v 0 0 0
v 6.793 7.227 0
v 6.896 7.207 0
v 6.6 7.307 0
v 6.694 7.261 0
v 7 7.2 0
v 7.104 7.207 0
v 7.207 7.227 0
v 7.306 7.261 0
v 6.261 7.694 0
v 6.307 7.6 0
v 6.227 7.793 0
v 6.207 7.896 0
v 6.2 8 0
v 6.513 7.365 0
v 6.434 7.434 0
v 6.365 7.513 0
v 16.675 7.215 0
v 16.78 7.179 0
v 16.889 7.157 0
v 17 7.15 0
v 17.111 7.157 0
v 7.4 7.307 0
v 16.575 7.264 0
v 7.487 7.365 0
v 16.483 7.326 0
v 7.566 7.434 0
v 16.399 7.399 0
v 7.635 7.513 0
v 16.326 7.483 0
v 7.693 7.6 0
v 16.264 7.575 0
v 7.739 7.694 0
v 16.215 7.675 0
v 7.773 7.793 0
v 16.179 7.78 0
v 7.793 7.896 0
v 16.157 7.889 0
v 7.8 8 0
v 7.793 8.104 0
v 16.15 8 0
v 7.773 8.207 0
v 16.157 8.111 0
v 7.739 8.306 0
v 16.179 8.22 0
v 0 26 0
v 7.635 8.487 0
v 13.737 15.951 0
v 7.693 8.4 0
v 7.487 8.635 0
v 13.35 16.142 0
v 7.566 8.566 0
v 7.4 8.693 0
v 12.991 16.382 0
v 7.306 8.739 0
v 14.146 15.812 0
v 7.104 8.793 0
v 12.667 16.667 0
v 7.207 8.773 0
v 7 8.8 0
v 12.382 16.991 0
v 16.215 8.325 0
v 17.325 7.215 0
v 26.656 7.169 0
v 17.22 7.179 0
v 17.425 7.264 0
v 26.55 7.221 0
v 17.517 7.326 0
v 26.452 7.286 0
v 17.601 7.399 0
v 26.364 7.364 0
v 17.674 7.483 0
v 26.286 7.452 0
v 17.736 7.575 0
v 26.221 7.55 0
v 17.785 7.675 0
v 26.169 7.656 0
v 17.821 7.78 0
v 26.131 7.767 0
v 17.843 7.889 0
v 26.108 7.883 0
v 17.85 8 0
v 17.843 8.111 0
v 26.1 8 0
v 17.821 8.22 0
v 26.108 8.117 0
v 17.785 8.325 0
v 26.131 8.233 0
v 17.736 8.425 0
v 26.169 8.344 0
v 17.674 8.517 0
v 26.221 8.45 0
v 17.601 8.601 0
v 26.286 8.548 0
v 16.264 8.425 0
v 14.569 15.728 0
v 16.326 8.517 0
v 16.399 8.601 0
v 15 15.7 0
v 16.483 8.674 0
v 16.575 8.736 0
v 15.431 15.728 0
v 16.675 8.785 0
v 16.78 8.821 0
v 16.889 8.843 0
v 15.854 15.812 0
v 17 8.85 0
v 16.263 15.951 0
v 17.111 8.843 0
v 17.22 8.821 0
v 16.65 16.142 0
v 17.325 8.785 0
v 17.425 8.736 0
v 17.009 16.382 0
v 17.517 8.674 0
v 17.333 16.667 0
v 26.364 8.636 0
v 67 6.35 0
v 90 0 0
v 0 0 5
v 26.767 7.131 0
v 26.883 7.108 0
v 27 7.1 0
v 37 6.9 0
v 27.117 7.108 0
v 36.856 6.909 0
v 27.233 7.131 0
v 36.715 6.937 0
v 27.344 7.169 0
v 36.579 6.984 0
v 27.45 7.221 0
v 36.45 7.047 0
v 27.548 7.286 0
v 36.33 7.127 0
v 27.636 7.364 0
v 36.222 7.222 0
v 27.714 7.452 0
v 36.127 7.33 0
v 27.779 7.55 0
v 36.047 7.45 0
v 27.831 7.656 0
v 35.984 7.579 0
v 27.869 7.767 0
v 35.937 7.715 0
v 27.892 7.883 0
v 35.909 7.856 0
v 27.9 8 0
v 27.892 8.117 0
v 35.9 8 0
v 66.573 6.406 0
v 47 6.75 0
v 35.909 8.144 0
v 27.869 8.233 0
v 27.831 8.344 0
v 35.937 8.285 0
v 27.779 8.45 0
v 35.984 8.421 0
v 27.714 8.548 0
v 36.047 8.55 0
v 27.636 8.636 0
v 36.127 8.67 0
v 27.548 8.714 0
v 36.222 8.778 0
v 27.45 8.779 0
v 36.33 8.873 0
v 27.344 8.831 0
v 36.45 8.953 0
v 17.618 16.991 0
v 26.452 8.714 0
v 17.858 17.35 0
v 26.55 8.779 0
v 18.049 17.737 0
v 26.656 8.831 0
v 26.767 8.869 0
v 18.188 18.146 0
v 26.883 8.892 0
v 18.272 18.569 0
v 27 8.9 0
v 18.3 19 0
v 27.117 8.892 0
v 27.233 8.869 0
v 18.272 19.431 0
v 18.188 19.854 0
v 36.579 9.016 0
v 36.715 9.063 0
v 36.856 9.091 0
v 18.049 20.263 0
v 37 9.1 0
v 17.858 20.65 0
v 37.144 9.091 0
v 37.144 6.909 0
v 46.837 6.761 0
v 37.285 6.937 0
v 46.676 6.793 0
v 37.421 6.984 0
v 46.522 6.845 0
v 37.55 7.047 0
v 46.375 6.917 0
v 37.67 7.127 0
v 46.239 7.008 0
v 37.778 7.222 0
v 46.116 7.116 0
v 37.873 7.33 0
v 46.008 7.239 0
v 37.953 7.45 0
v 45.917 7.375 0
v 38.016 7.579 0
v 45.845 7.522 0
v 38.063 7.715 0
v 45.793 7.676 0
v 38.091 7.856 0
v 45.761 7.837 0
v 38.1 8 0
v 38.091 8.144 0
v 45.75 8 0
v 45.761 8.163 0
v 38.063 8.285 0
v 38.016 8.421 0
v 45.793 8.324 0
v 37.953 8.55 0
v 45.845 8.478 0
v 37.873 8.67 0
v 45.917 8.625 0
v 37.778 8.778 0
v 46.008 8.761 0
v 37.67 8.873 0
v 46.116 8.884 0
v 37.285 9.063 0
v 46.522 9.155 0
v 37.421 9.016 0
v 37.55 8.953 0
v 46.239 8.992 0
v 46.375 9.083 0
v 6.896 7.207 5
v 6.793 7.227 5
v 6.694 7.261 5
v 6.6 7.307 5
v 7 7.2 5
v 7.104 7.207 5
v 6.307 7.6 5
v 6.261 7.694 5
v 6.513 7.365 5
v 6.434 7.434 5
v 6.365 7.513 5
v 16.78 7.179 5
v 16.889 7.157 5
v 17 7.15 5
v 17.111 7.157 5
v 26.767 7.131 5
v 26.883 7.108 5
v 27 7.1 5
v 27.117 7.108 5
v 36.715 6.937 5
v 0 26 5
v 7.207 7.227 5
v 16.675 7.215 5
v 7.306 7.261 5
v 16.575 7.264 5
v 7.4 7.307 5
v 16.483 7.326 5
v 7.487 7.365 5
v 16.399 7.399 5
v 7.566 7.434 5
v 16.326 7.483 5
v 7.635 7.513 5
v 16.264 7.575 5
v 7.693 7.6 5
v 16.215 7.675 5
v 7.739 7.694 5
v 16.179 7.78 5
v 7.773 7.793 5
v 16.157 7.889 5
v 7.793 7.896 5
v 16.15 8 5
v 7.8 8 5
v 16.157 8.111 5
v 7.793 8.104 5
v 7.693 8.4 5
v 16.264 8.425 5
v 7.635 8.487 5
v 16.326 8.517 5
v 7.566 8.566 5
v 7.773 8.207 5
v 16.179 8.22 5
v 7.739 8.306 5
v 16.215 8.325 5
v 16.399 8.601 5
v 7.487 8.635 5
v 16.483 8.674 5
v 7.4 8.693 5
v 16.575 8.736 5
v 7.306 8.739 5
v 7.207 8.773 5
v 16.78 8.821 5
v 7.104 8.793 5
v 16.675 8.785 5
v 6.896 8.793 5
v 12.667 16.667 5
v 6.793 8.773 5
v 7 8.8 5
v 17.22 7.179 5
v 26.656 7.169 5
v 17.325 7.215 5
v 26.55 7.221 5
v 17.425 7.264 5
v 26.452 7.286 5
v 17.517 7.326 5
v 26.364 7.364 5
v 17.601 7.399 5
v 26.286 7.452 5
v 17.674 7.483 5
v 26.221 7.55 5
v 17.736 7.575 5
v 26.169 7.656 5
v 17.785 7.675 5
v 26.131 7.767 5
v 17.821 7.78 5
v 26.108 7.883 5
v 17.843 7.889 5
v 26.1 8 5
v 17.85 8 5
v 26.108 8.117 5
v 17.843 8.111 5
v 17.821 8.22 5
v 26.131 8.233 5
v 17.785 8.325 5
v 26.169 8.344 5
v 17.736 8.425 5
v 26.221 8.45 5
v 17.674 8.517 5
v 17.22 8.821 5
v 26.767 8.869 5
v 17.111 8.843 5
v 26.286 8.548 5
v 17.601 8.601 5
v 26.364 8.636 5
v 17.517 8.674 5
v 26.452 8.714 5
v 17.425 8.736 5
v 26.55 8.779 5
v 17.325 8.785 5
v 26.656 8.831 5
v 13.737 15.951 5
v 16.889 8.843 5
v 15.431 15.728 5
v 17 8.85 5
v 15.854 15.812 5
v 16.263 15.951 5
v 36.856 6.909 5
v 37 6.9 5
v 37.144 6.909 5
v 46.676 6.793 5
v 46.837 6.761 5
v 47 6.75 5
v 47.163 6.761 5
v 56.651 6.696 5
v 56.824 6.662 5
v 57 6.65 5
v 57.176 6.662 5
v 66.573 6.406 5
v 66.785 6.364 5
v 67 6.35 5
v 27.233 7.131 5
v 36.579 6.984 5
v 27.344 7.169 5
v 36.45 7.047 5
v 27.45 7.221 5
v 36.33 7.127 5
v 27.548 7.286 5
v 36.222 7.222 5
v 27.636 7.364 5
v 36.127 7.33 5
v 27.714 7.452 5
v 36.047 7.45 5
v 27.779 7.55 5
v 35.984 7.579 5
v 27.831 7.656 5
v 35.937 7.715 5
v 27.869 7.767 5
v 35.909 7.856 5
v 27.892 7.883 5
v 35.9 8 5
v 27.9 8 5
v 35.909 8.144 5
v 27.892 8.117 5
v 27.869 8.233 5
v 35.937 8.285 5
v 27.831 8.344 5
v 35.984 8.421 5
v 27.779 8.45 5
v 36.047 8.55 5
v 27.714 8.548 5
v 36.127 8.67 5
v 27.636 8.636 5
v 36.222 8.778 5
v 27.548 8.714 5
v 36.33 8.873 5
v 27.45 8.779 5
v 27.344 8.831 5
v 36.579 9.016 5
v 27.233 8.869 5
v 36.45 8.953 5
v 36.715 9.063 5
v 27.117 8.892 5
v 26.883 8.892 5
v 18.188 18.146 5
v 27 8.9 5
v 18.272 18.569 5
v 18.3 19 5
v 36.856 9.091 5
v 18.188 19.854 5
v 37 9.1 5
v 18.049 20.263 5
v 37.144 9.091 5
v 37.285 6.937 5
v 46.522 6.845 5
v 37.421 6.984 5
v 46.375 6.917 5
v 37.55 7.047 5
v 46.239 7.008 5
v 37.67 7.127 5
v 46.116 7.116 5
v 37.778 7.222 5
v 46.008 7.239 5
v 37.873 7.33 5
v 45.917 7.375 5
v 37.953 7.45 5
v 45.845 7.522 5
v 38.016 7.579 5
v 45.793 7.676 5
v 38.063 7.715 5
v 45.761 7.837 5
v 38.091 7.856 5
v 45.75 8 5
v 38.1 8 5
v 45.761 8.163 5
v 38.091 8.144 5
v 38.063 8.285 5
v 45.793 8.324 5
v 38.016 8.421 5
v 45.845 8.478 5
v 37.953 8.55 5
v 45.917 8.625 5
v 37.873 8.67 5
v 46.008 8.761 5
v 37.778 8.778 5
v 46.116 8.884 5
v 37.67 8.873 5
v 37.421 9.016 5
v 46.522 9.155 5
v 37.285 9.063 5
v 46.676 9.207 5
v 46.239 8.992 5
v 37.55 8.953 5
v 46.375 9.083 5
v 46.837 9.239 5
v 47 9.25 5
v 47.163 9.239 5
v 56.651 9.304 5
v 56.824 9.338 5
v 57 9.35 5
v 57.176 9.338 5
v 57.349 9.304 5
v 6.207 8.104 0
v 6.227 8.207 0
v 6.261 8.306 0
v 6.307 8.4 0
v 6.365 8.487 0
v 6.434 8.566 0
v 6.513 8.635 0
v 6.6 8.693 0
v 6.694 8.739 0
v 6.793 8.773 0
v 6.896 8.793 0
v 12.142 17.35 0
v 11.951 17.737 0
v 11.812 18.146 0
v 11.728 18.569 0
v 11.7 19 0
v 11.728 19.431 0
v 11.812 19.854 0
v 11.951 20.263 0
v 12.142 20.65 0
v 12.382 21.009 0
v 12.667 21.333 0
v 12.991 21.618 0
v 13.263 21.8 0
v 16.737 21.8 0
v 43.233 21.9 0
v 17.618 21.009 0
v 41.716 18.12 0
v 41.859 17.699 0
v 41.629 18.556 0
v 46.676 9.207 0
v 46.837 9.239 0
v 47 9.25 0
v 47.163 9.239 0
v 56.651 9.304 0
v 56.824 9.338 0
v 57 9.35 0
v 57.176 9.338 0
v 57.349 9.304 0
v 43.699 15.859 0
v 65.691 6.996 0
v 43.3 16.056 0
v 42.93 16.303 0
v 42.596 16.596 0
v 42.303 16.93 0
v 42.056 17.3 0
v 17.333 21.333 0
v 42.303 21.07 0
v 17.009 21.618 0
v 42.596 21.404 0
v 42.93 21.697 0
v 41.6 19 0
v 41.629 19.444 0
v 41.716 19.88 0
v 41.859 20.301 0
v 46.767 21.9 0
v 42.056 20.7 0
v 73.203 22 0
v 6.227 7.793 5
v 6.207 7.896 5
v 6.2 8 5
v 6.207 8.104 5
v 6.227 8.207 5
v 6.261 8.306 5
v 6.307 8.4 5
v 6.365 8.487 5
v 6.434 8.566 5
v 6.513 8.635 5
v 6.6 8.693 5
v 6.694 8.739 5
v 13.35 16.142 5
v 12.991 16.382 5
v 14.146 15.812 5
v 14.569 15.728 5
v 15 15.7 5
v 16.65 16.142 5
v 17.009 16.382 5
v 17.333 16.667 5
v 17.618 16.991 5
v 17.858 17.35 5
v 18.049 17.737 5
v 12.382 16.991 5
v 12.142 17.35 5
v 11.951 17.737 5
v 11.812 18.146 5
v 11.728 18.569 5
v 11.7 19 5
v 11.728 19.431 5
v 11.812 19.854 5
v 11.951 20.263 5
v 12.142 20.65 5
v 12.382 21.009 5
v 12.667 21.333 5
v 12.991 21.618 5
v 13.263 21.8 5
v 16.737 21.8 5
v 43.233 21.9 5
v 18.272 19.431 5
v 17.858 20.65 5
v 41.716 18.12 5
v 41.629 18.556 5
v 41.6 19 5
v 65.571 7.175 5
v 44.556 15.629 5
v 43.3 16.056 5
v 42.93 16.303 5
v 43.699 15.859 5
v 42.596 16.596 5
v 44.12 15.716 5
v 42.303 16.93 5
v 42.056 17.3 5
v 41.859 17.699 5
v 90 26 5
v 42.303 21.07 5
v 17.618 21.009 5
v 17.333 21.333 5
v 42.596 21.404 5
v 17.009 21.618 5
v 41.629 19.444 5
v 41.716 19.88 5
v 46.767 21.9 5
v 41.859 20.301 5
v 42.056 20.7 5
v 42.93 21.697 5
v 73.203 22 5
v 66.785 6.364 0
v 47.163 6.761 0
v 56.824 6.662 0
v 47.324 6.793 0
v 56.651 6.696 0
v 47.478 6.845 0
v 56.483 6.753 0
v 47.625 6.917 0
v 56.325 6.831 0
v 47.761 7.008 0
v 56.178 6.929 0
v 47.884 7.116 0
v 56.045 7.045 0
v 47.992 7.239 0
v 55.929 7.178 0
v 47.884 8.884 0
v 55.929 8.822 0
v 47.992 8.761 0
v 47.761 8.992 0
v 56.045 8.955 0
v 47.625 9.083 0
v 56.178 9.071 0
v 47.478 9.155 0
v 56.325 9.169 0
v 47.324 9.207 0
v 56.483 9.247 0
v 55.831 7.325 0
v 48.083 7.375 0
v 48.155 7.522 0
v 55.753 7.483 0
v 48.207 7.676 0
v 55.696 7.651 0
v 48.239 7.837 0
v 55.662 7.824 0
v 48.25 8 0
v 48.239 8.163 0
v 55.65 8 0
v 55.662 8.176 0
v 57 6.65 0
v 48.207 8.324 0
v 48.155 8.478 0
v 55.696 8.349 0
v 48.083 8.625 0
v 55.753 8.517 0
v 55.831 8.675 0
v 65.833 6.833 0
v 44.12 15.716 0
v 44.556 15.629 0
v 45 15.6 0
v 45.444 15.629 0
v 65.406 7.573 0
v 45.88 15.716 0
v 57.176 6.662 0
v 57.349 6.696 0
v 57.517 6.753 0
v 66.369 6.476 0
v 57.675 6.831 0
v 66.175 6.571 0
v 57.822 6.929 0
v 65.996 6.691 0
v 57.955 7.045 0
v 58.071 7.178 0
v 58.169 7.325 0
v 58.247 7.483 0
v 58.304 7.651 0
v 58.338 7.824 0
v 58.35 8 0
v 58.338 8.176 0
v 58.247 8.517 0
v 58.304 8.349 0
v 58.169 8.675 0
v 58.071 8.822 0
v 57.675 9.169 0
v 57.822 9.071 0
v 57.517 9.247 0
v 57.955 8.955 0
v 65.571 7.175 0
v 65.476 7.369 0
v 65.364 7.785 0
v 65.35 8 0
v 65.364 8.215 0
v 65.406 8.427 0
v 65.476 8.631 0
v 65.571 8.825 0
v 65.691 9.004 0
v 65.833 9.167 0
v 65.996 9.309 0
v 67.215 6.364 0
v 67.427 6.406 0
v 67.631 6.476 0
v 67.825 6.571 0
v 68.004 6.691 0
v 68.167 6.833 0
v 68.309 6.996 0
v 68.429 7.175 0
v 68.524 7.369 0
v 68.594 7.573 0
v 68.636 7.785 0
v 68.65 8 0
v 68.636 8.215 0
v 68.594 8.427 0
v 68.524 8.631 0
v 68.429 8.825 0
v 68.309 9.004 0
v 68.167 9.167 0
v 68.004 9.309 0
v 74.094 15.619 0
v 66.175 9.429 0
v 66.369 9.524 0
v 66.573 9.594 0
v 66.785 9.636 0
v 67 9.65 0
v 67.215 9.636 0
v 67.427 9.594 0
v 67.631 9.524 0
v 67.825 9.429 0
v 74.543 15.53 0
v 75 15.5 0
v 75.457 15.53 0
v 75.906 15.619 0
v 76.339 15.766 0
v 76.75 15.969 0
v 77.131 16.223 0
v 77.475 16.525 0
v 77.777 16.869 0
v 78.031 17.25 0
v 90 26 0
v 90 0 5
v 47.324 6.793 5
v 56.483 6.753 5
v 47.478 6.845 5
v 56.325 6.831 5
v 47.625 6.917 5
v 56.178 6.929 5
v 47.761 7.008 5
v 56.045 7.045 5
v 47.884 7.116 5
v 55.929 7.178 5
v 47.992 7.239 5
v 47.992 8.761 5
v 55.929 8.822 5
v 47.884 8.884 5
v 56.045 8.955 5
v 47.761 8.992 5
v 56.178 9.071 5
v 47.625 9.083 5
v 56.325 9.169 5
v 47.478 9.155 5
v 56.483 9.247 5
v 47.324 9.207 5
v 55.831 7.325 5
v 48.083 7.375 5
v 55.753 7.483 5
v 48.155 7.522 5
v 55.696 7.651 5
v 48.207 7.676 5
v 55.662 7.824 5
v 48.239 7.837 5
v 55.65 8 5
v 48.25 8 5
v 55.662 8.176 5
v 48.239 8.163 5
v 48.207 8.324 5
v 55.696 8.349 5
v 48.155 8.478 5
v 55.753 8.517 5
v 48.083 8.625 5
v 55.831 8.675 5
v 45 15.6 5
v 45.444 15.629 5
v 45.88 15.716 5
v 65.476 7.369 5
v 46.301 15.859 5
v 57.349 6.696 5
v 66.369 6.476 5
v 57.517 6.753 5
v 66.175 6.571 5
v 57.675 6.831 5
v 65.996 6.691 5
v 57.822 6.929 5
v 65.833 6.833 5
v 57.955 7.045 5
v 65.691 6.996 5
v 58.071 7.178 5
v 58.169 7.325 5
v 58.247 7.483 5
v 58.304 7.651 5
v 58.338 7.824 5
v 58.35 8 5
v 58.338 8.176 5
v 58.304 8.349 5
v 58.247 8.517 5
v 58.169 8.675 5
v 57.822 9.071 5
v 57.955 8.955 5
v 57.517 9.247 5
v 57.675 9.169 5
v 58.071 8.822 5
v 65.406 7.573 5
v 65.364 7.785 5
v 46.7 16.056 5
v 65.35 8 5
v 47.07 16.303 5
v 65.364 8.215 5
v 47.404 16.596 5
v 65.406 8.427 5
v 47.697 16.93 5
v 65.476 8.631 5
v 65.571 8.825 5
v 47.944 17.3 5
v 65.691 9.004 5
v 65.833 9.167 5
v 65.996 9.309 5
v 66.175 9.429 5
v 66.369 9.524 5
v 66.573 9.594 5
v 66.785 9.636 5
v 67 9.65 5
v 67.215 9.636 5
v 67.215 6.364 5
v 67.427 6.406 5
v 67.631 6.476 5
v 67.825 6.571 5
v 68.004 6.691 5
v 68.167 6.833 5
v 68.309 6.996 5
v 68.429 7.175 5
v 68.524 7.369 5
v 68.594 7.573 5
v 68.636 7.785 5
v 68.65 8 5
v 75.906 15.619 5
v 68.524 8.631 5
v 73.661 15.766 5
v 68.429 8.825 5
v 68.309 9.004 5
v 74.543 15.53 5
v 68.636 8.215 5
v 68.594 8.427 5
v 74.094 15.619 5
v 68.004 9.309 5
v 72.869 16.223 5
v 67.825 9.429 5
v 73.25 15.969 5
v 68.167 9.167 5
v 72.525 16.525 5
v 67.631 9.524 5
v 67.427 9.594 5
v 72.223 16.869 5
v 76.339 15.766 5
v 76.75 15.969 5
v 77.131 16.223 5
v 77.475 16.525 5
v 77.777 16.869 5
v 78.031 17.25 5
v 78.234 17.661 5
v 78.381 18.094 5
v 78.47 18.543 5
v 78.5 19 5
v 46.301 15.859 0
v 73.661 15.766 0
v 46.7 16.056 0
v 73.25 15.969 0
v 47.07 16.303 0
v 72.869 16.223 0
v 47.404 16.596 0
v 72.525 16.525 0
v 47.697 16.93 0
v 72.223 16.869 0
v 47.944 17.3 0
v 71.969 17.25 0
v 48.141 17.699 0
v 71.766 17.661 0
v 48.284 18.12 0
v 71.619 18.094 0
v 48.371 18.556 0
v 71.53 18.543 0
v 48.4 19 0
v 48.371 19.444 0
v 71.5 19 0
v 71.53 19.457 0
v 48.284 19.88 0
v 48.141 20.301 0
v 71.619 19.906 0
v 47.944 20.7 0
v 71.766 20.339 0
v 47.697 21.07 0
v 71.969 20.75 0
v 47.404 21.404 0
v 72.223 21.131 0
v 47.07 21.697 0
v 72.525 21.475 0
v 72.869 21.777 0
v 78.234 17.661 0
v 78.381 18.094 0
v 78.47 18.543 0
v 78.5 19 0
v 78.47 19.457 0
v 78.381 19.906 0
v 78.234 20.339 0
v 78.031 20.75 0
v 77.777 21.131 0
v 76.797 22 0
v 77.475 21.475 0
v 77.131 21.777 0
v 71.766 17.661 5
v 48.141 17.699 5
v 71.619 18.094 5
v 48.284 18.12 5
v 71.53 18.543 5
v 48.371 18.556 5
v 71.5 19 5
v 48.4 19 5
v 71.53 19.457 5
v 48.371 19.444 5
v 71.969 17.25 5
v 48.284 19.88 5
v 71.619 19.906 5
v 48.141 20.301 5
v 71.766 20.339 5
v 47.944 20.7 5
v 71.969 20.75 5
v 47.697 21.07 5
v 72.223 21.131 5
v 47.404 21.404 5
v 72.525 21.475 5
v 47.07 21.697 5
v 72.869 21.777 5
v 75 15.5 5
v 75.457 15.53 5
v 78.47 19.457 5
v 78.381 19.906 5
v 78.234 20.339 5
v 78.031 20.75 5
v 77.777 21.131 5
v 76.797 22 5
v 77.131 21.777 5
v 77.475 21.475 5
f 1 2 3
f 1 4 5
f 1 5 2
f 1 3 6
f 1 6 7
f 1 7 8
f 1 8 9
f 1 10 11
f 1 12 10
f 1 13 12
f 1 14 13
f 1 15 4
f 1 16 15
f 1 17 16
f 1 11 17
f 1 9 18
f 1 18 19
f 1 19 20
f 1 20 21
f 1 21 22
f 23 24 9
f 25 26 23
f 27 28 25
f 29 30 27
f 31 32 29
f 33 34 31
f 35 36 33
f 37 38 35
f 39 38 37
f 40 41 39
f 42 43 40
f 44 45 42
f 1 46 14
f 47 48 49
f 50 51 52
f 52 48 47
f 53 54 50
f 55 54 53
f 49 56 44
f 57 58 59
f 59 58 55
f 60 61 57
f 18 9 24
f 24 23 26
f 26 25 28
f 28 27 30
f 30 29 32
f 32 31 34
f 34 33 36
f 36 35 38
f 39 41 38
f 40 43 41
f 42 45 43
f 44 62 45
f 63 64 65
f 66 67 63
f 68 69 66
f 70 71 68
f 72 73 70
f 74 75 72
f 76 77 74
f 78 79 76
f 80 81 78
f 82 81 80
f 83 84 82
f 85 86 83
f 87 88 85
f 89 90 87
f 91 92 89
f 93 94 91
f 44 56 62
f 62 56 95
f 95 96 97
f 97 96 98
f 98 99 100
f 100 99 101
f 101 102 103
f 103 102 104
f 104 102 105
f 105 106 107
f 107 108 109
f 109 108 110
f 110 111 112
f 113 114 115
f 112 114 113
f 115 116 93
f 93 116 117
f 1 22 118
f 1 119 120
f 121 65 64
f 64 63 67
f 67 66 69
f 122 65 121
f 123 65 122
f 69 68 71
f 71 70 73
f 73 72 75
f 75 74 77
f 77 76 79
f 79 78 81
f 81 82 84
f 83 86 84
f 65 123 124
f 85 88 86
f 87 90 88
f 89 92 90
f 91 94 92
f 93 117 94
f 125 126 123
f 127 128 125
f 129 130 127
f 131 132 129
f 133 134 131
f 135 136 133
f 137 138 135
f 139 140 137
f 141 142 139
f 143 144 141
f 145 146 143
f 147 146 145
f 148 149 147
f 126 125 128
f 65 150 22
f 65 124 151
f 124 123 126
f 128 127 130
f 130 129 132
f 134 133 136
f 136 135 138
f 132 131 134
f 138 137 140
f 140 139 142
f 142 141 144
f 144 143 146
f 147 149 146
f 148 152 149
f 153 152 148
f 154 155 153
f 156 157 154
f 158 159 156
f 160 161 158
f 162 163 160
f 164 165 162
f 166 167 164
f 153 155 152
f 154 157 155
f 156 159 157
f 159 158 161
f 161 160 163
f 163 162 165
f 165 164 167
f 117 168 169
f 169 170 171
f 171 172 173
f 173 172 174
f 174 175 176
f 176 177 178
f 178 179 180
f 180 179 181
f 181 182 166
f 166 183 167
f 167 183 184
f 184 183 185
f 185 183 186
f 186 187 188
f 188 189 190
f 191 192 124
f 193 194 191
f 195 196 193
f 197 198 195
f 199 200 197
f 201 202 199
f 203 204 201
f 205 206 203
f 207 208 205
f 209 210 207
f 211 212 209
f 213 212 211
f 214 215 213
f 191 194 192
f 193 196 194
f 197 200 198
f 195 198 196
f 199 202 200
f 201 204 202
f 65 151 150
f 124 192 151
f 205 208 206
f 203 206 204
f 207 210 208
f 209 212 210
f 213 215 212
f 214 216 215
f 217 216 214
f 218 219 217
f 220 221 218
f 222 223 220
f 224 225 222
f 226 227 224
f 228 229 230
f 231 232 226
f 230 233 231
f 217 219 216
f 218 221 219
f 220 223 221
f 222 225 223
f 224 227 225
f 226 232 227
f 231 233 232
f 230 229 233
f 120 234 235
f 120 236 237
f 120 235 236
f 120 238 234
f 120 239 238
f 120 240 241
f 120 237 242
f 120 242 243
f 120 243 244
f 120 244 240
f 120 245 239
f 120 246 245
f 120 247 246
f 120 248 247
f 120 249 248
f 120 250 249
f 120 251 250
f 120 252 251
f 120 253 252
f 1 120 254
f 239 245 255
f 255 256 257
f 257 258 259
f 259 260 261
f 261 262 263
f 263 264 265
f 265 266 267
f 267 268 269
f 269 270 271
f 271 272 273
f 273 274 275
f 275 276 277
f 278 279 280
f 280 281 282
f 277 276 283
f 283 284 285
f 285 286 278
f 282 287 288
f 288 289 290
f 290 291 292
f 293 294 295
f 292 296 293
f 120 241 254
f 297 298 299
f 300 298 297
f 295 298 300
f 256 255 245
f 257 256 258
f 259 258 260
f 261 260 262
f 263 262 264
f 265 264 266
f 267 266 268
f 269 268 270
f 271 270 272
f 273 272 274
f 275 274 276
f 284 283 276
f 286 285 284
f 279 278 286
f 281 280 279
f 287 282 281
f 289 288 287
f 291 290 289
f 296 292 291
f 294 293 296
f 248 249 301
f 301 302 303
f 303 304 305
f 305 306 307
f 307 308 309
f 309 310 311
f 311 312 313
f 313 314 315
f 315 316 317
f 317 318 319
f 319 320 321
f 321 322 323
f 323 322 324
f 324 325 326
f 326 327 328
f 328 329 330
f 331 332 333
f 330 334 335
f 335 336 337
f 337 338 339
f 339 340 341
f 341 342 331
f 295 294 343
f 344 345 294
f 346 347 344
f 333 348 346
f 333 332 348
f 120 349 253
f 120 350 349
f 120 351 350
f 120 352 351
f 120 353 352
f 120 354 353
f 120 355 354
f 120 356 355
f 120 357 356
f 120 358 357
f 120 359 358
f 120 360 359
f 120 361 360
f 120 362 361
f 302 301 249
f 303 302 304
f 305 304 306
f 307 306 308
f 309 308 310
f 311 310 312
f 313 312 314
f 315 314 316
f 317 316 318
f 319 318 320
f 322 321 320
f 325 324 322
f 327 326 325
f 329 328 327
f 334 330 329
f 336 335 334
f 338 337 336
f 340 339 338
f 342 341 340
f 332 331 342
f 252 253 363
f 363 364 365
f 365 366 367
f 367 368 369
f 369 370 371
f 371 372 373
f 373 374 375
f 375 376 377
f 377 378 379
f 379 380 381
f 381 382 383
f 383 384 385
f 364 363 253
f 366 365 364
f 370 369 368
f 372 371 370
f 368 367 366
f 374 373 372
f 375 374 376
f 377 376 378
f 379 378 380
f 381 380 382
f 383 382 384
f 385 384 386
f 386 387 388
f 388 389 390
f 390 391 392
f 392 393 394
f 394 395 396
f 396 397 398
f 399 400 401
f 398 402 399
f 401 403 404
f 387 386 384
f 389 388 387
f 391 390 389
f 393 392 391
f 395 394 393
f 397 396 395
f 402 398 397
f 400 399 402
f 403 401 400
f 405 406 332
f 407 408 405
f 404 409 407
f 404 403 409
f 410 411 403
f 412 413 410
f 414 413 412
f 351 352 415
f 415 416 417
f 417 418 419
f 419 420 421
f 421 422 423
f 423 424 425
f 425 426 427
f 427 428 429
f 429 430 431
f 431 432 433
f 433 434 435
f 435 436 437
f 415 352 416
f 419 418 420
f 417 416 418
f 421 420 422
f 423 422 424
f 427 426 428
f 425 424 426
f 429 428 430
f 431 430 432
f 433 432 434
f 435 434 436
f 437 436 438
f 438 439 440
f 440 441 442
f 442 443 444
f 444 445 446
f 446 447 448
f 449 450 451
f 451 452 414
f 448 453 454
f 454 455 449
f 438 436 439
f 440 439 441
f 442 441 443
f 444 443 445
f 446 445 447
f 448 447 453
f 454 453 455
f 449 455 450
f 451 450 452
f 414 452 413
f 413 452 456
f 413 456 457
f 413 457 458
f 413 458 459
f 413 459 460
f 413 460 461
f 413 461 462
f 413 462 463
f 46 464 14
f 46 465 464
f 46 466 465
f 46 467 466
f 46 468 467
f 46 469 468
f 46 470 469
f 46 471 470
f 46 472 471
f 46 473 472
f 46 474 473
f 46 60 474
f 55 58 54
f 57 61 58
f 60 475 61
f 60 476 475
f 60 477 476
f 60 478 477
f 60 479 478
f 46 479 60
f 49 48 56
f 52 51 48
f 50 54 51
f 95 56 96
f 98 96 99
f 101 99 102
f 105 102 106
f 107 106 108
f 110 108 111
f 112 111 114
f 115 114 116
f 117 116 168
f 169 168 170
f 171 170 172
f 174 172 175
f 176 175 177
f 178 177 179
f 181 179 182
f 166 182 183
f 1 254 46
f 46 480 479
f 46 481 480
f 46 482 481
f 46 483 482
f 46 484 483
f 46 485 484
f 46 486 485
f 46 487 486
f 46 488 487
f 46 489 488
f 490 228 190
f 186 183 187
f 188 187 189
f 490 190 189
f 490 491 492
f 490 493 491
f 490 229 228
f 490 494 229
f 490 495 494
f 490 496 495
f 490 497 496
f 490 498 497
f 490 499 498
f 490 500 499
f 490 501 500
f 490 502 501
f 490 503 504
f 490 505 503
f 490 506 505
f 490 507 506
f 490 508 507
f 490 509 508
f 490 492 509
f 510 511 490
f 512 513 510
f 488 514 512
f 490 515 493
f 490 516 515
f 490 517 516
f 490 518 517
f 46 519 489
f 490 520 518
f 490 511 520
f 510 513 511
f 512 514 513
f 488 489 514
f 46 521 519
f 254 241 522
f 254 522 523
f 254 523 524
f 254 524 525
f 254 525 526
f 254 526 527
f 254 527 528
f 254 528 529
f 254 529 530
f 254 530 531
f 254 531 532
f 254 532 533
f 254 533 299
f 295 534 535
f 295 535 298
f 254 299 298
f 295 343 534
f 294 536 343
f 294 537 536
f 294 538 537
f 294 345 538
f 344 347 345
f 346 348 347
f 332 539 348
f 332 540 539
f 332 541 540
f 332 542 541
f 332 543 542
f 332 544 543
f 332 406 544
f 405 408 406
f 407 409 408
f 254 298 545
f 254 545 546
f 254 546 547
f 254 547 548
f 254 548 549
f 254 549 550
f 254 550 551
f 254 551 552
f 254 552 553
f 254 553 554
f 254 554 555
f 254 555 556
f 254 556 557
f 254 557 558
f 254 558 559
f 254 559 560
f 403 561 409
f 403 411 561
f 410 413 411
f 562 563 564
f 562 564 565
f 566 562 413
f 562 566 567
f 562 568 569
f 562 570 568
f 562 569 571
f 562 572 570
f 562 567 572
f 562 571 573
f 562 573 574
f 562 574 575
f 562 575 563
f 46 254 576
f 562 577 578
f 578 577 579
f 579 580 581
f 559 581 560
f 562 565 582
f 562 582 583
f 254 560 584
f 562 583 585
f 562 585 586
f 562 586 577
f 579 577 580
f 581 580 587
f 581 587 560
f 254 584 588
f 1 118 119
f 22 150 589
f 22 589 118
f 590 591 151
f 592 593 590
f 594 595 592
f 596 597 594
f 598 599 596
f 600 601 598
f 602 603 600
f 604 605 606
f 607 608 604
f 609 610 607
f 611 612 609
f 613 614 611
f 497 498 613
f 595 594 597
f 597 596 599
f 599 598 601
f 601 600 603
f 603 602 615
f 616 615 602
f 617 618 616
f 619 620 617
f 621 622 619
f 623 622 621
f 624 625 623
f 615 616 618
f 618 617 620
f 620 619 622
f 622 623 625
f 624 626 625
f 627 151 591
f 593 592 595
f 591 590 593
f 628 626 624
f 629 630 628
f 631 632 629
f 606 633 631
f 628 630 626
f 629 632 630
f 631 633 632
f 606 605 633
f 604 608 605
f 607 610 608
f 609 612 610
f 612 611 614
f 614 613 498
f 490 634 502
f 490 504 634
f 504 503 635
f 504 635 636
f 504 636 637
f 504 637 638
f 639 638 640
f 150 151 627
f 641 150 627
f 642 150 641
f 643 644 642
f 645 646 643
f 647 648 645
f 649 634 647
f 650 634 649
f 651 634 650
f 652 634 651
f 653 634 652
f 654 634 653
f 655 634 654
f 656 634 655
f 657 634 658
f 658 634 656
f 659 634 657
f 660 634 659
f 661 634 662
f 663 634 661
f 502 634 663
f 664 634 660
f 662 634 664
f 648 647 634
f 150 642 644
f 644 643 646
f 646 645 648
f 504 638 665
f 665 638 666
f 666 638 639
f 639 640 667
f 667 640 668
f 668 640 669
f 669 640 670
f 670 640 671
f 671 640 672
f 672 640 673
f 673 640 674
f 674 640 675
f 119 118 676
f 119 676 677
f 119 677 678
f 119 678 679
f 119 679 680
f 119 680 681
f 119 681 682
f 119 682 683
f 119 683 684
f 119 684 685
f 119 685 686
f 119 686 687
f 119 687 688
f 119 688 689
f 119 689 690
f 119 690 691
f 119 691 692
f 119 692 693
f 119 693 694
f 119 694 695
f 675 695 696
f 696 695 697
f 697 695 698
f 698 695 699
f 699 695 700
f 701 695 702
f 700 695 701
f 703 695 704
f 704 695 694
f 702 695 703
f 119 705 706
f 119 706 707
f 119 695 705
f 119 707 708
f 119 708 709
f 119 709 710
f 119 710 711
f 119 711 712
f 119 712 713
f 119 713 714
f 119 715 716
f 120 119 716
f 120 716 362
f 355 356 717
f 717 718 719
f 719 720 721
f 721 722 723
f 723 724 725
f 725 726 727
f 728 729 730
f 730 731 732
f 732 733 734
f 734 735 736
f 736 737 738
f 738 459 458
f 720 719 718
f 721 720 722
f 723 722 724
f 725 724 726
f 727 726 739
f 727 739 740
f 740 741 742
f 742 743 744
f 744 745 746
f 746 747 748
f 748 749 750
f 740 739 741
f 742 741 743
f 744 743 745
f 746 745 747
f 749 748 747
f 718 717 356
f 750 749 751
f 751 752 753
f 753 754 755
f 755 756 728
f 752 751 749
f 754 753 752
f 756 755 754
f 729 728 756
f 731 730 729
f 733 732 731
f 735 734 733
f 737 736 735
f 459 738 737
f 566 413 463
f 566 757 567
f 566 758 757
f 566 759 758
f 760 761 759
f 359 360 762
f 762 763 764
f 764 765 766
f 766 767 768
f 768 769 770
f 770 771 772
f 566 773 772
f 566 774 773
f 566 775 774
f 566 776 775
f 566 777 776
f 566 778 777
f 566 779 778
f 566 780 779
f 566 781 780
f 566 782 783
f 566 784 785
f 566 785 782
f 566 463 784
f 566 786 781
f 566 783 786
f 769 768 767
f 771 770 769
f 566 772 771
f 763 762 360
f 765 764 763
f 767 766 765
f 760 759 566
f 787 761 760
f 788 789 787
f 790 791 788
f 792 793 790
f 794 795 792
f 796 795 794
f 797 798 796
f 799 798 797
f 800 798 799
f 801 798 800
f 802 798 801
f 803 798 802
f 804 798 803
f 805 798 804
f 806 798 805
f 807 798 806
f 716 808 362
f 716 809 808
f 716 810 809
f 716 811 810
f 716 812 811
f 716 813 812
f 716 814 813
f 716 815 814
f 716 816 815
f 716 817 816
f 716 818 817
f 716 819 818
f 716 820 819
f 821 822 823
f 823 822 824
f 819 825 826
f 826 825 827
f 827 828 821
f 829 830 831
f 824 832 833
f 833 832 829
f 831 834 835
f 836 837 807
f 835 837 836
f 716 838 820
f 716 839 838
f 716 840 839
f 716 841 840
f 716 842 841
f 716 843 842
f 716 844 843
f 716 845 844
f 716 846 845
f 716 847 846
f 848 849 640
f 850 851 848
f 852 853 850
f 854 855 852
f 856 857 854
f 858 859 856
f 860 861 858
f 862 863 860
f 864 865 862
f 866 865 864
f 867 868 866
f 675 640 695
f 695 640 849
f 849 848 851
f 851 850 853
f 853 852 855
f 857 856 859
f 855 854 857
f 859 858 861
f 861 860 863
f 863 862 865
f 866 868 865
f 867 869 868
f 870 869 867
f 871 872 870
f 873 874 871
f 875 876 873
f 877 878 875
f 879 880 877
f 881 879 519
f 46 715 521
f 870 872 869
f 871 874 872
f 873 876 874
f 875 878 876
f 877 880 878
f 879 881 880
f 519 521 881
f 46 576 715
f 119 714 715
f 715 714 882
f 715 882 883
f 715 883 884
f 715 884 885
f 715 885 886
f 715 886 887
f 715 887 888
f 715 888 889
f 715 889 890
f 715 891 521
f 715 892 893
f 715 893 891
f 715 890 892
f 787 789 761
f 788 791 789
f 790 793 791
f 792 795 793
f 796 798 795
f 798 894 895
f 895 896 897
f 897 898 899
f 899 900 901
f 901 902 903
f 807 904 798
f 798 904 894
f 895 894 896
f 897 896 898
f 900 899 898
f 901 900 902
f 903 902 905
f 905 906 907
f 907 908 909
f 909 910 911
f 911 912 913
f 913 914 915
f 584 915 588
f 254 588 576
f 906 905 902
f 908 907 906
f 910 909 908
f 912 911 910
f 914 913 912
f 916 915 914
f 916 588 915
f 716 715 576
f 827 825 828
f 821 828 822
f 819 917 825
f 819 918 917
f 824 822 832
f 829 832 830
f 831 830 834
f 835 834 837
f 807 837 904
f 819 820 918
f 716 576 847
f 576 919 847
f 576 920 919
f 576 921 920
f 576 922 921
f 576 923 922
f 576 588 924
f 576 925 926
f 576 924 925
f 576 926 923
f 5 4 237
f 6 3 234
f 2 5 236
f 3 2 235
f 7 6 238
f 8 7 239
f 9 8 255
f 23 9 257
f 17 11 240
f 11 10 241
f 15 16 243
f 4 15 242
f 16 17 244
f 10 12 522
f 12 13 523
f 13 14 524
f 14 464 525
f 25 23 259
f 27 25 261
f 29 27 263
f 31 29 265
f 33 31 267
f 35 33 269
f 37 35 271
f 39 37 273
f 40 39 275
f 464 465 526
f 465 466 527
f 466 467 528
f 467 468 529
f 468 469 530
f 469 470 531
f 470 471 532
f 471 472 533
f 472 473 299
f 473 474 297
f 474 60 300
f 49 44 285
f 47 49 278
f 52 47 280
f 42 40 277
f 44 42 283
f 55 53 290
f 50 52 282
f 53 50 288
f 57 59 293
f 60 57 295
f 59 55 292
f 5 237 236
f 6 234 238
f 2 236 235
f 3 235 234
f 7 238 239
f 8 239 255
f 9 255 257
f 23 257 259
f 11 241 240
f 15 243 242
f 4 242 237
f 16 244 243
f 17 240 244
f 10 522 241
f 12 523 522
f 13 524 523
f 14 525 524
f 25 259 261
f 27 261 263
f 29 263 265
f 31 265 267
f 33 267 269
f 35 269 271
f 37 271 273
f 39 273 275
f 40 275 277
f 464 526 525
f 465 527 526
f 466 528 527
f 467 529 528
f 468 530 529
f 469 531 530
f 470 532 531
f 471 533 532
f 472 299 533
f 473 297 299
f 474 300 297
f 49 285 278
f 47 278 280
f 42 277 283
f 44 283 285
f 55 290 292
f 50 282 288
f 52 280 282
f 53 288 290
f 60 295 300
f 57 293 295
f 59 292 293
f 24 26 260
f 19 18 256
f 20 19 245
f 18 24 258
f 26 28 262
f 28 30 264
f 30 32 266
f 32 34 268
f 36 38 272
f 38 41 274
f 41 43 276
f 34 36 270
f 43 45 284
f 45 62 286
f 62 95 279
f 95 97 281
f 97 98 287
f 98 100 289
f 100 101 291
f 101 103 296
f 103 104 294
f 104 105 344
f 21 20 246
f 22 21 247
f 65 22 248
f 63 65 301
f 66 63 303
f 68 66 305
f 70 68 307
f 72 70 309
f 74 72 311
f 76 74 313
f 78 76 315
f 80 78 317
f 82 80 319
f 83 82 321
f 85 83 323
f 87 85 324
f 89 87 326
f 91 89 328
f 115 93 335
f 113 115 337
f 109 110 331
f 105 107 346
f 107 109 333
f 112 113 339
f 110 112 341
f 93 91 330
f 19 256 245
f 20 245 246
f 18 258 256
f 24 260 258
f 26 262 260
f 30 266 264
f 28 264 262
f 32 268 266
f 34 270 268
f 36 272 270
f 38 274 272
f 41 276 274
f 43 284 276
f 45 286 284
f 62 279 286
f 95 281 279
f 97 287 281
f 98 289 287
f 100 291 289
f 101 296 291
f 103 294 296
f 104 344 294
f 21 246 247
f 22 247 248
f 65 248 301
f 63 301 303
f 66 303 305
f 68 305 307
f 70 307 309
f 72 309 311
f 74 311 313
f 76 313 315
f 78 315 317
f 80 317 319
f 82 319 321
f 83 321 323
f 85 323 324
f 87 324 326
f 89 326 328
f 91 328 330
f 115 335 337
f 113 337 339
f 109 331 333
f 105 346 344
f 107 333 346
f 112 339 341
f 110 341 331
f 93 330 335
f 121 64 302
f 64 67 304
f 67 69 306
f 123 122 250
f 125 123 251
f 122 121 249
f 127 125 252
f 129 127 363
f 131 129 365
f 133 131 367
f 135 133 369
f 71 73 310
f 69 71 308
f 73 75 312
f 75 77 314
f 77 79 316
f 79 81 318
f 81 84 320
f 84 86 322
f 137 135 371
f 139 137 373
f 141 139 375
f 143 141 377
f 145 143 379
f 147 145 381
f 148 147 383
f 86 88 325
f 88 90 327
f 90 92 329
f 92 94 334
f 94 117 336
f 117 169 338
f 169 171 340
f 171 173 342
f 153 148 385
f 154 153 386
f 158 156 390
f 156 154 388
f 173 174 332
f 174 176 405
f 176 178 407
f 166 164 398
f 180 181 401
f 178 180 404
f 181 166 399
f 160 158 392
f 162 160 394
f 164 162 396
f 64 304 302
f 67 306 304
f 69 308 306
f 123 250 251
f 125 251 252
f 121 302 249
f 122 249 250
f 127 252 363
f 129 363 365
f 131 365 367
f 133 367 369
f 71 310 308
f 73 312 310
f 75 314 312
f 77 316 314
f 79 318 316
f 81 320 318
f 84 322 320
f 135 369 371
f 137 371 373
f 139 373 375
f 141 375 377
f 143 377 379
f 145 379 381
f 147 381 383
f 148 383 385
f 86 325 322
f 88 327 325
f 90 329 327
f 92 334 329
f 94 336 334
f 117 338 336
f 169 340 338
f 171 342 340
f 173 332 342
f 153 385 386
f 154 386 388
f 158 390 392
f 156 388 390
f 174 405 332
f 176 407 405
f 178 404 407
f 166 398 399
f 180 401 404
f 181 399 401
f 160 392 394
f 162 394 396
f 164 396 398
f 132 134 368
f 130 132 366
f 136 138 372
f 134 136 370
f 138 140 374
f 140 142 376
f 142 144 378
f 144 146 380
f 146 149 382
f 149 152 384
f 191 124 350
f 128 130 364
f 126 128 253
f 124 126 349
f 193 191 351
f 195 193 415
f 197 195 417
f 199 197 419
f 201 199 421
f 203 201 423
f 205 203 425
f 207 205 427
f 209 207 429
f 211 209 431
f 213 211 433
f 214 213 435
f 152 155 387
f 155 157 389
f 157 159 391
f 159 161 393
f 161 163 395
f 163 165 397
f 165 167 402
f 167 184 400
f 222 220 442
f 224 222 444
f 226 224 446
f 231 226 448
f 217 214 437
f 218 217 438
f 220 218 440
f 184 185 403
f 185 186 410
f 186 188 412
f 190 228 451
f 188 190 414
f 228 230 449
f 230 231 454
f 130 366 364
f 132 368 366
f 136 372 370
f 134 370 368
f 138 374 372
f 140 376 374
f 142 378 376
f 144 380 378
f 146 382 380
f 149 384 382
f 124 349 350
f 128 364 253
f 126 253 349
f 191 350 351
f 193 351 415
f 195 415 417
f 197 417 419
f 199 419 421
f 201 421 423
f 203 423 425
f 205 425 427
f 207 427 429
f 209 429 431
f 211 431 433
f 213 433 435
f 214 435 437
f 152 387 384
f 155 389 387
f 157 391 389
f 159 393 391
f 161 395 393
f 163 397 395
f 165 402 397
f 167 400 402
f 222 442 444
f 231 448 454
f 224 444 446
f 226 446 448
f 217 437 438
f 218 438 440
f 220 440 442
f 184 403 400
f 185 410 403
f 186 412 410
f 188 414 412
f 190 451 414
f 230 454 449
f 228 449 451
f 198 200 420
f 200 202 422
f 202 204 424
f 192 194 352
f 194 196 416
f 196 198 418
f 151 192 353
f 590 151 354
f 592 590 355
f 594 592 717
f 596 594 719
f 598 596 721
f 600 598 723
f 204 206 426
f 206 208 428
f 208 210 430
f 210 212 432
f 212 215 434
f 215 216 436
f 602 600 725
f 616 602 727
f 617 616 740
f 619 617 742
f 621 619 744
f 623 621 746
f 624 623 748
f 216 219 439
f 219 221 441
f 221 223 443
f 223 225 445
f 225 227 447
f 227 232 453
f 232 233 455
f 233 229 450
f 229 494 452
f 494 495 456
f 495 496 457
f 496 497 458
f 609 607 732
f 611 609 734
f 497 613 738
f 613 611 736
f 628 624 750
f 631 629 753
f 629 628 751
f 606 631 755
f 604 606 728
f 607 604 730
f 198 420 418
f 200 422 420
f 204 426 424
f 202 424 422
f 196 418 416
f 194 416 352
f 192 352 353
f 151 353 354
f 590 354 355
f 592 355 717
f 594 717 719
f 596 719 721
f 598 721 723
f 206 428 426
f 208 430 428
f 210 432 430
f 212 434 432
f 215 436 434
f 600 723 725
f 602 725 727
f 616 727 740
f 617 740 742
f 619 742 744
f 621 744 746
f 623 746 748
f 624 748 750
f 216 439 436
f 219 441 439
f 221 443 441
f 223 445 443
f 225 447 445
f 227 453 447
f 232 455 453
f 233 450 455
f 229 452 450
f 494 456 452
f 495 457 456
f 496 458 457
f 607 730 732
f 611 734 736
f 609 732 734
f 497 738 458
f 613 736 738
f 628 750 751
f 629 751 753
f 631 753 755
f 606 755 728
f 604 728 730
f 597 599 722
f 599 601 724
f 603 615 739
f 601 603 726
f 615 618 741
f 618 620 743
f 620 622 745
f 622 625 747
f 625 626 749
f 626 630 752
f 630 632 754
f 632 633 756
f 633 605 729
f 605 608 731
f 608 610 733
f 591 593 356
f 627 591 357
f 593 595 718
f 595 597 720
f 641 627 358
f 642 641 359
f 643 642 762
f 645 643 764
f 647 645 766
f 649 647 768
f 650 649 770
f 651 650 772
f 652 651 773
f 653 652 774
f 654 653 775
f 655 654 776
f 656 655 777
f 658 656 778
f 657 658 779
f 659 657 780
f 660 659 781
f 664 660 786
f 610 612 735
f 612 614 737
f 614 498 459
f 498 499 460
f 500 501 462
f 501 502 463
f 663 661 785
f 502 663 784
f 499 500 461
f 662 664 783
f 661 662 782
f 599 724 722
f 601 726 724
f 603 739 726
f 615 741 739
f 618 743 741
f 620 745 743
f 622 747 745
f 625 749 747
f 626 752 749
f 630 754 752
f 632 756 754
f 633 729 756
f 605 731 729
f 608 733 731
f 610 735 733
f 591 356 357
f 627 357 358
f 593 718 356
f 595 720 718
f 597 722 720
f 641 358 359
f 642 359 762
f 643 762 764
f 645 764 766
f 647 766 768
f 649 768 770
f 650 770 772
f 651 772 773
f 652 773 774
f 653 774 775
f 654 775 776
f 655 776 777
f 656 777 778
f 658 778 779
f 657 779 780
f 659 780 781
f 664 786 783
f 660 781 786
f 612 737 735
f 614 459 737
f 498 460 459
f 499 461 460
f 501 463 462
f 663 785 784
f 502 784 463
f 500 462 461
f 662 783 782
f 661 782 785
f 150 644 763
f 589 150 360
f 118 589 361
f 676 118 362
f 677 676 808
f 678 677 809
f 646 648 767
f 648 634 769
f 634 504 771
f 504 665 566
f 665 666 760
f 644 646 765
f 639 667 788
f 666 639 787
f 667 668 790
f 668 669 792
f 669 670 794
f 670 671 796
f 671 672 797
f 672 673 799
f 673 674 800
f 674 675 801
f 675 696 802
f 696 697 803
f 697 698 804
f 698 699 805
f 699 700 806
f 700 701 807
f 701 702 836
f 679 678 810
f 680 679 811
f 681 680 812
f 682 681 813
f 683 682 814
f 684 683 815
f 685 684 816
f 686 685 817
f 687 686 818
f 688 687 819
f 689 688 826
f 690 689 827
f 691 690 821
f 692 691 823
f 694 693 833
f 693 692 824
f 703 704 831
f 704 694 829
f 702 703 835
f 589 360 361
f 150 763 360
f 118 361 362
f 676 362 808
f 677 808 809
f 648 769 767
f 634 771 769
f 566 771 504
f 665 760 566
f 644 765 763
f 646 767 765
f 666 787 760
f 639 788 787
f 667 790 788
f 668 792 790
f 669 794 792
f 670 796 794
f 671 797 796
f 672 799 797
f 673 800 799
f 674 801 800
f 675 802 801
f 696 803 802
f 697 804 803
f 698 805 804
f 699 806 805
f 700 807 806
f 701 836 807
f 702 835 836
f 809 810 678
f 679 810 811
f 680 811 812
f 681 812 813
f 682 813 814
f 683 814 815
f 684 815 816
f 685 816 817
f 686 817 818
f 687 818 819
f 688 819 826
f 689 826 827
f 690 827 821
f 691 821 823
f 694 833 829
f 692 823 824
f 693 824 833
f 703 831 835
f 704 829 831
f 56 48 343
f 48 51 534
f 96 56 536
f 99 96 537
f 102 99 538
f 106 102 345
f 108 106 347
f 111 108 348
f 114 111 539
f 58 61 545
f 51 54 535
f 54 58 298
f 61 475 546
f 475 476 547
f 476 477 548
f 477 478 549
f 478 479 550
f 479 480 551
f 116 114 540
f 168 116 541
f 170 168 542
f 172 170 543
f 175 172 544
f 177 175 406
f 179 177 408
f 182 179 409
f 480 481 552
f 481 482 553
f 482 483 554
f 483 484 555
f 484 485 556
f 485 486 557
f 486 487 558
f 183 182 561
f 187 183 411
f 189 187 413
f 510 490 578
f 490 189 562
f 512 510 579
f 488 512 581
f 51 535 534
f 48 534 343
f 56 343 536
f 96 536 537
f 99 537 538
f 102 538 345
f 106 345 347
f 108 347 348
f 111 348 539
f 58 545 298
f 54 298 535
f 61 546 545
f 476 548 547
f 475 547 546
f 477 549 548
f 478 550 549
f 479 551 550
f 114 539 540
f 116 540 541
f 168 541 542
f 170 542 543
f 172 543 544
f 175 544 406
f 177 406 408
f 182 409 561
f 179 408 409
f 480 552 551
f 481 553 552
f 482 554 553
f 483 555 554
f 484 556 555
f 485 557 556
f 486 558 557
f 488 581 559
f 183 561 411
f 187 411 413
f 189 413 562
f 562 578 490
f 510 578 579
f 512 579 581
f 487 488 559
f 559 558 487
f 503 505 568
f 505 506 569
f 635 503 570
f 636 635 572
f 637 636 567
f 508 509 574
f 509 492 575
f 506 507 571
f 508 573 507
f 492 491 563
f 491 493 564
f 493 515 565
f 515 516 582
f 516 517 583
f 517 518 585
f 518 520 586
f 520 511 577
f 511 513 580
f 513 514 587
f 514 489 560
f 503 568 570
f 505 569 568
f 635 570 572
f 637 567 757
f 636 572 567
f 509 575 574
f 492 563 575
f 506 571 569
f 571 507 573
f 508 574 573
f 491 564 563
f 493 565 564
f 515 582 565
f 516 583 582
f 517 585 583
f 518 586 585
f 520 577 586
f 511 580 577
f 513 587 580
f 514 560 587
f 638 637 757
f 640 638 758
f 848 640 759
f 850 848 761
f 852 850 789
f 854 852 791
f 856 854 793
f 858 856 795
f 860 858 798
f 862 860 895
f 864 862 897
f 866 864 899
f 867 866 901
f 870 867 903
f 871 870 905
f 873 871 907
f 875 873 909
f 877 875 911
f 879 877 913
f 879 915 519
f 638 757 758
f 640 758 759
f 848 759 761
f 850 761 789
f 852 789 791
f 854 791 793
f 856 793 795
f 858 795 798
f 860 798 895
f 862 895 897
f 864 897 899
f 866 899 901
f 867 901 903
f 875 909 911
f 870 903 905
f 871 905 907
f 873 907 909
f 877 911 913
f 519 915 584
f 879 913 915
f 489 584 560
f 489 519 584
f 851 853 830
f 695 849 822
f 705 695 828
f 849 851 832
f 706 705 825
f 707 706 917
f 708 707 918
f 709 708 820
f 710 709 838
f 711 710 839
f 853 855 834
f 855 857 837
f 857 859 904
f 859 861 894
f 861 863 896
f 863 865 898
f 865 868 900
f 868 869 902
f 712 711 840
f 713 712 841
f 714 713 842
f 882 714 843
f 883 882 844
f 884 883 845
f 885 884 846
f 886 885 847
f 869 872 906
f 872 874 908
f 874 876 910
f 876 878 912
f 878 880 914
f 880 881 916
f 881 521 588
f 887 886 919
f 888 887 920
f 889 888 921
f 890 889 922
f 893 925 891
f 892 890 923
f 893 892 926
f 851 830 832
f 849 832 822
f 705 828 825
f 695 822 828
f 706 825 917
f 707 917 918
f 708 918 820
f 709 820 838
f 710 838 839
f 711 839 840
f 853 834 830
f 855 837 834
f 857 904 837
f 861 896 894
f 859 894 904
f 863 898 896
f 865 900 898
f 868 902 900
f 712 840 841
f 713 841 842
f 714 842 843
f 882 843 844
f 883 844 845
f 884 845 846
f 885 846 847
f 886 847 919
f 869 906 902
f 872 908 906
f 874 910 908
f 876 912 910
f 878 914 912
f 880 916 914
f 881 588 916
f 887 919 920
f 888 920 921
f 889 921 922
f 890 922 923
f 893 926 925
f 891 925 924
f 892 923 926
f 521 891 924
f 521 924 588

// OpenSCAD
// Generated FH1 print part; mm. See parameters.json and physical-fit limits.
difference() {
difference() {
difference() {
difference() {
difference() {
difference() {
difference() {
difference() {
difference() {
difference() {
cube([90,26,5]);
translate([7, 8, -0.1]) { cylinder(d=1.6,h=5.2,$fn=48); }
}
translate([17, 8, -0.1]) { cylinder(d=1.7,h=5.2,$fn=48); }
}
translate([27, 8, -0.1]) { cylinder(d=1.8,h=5.2,$fn=48); }
}
translate([37, 8, -0.1]) { cylinder(d=2.2,h=5.2,$fn=48); }
}
translate([47, 8, -0.1]) { cylinder(d=2.5,h=5.2,$fn=48); }
}
translate([57, 8, -0.1]) { cylinder(d=2.7,h=5.2,$fn=48); }
}
translate([67, 8, -0.1]) { cylinder(d=3.3,h=5.2,$fn=48); }
}
translate([15, 19, -0.1]) { rotate([-90, 0, 0]) { difference() {
rotate([90, 0, 0]) { cylinder(d=6.6,h=5.2,$fn=48); }
translate([-4.3, -6.2, 2.8]) { cube([8.6,7.2,8.6]); }
} } }
}
translate([45, 19, -0.1]) { rotate([-90, 0, 0]) { difference() {
rotate([90, 0, 0]) { cylinder(d=6.8,h=5.2,$fn=48); }
translate([-4.4, -6.2, 2.9]) { cube([8.8,7.2,8.8]); }
} } }
}
translate([75, 19, -0.1]) { rotate([-90, 0, 0]) { difference() {
rotate([90, 0, 0]) { cylinder(d=7.0,h=5.2,$fn=48); }
translate([-4.5, -6.2, 3.0]) { cube([9.0,7.2,9.0]); }
} } }
}
